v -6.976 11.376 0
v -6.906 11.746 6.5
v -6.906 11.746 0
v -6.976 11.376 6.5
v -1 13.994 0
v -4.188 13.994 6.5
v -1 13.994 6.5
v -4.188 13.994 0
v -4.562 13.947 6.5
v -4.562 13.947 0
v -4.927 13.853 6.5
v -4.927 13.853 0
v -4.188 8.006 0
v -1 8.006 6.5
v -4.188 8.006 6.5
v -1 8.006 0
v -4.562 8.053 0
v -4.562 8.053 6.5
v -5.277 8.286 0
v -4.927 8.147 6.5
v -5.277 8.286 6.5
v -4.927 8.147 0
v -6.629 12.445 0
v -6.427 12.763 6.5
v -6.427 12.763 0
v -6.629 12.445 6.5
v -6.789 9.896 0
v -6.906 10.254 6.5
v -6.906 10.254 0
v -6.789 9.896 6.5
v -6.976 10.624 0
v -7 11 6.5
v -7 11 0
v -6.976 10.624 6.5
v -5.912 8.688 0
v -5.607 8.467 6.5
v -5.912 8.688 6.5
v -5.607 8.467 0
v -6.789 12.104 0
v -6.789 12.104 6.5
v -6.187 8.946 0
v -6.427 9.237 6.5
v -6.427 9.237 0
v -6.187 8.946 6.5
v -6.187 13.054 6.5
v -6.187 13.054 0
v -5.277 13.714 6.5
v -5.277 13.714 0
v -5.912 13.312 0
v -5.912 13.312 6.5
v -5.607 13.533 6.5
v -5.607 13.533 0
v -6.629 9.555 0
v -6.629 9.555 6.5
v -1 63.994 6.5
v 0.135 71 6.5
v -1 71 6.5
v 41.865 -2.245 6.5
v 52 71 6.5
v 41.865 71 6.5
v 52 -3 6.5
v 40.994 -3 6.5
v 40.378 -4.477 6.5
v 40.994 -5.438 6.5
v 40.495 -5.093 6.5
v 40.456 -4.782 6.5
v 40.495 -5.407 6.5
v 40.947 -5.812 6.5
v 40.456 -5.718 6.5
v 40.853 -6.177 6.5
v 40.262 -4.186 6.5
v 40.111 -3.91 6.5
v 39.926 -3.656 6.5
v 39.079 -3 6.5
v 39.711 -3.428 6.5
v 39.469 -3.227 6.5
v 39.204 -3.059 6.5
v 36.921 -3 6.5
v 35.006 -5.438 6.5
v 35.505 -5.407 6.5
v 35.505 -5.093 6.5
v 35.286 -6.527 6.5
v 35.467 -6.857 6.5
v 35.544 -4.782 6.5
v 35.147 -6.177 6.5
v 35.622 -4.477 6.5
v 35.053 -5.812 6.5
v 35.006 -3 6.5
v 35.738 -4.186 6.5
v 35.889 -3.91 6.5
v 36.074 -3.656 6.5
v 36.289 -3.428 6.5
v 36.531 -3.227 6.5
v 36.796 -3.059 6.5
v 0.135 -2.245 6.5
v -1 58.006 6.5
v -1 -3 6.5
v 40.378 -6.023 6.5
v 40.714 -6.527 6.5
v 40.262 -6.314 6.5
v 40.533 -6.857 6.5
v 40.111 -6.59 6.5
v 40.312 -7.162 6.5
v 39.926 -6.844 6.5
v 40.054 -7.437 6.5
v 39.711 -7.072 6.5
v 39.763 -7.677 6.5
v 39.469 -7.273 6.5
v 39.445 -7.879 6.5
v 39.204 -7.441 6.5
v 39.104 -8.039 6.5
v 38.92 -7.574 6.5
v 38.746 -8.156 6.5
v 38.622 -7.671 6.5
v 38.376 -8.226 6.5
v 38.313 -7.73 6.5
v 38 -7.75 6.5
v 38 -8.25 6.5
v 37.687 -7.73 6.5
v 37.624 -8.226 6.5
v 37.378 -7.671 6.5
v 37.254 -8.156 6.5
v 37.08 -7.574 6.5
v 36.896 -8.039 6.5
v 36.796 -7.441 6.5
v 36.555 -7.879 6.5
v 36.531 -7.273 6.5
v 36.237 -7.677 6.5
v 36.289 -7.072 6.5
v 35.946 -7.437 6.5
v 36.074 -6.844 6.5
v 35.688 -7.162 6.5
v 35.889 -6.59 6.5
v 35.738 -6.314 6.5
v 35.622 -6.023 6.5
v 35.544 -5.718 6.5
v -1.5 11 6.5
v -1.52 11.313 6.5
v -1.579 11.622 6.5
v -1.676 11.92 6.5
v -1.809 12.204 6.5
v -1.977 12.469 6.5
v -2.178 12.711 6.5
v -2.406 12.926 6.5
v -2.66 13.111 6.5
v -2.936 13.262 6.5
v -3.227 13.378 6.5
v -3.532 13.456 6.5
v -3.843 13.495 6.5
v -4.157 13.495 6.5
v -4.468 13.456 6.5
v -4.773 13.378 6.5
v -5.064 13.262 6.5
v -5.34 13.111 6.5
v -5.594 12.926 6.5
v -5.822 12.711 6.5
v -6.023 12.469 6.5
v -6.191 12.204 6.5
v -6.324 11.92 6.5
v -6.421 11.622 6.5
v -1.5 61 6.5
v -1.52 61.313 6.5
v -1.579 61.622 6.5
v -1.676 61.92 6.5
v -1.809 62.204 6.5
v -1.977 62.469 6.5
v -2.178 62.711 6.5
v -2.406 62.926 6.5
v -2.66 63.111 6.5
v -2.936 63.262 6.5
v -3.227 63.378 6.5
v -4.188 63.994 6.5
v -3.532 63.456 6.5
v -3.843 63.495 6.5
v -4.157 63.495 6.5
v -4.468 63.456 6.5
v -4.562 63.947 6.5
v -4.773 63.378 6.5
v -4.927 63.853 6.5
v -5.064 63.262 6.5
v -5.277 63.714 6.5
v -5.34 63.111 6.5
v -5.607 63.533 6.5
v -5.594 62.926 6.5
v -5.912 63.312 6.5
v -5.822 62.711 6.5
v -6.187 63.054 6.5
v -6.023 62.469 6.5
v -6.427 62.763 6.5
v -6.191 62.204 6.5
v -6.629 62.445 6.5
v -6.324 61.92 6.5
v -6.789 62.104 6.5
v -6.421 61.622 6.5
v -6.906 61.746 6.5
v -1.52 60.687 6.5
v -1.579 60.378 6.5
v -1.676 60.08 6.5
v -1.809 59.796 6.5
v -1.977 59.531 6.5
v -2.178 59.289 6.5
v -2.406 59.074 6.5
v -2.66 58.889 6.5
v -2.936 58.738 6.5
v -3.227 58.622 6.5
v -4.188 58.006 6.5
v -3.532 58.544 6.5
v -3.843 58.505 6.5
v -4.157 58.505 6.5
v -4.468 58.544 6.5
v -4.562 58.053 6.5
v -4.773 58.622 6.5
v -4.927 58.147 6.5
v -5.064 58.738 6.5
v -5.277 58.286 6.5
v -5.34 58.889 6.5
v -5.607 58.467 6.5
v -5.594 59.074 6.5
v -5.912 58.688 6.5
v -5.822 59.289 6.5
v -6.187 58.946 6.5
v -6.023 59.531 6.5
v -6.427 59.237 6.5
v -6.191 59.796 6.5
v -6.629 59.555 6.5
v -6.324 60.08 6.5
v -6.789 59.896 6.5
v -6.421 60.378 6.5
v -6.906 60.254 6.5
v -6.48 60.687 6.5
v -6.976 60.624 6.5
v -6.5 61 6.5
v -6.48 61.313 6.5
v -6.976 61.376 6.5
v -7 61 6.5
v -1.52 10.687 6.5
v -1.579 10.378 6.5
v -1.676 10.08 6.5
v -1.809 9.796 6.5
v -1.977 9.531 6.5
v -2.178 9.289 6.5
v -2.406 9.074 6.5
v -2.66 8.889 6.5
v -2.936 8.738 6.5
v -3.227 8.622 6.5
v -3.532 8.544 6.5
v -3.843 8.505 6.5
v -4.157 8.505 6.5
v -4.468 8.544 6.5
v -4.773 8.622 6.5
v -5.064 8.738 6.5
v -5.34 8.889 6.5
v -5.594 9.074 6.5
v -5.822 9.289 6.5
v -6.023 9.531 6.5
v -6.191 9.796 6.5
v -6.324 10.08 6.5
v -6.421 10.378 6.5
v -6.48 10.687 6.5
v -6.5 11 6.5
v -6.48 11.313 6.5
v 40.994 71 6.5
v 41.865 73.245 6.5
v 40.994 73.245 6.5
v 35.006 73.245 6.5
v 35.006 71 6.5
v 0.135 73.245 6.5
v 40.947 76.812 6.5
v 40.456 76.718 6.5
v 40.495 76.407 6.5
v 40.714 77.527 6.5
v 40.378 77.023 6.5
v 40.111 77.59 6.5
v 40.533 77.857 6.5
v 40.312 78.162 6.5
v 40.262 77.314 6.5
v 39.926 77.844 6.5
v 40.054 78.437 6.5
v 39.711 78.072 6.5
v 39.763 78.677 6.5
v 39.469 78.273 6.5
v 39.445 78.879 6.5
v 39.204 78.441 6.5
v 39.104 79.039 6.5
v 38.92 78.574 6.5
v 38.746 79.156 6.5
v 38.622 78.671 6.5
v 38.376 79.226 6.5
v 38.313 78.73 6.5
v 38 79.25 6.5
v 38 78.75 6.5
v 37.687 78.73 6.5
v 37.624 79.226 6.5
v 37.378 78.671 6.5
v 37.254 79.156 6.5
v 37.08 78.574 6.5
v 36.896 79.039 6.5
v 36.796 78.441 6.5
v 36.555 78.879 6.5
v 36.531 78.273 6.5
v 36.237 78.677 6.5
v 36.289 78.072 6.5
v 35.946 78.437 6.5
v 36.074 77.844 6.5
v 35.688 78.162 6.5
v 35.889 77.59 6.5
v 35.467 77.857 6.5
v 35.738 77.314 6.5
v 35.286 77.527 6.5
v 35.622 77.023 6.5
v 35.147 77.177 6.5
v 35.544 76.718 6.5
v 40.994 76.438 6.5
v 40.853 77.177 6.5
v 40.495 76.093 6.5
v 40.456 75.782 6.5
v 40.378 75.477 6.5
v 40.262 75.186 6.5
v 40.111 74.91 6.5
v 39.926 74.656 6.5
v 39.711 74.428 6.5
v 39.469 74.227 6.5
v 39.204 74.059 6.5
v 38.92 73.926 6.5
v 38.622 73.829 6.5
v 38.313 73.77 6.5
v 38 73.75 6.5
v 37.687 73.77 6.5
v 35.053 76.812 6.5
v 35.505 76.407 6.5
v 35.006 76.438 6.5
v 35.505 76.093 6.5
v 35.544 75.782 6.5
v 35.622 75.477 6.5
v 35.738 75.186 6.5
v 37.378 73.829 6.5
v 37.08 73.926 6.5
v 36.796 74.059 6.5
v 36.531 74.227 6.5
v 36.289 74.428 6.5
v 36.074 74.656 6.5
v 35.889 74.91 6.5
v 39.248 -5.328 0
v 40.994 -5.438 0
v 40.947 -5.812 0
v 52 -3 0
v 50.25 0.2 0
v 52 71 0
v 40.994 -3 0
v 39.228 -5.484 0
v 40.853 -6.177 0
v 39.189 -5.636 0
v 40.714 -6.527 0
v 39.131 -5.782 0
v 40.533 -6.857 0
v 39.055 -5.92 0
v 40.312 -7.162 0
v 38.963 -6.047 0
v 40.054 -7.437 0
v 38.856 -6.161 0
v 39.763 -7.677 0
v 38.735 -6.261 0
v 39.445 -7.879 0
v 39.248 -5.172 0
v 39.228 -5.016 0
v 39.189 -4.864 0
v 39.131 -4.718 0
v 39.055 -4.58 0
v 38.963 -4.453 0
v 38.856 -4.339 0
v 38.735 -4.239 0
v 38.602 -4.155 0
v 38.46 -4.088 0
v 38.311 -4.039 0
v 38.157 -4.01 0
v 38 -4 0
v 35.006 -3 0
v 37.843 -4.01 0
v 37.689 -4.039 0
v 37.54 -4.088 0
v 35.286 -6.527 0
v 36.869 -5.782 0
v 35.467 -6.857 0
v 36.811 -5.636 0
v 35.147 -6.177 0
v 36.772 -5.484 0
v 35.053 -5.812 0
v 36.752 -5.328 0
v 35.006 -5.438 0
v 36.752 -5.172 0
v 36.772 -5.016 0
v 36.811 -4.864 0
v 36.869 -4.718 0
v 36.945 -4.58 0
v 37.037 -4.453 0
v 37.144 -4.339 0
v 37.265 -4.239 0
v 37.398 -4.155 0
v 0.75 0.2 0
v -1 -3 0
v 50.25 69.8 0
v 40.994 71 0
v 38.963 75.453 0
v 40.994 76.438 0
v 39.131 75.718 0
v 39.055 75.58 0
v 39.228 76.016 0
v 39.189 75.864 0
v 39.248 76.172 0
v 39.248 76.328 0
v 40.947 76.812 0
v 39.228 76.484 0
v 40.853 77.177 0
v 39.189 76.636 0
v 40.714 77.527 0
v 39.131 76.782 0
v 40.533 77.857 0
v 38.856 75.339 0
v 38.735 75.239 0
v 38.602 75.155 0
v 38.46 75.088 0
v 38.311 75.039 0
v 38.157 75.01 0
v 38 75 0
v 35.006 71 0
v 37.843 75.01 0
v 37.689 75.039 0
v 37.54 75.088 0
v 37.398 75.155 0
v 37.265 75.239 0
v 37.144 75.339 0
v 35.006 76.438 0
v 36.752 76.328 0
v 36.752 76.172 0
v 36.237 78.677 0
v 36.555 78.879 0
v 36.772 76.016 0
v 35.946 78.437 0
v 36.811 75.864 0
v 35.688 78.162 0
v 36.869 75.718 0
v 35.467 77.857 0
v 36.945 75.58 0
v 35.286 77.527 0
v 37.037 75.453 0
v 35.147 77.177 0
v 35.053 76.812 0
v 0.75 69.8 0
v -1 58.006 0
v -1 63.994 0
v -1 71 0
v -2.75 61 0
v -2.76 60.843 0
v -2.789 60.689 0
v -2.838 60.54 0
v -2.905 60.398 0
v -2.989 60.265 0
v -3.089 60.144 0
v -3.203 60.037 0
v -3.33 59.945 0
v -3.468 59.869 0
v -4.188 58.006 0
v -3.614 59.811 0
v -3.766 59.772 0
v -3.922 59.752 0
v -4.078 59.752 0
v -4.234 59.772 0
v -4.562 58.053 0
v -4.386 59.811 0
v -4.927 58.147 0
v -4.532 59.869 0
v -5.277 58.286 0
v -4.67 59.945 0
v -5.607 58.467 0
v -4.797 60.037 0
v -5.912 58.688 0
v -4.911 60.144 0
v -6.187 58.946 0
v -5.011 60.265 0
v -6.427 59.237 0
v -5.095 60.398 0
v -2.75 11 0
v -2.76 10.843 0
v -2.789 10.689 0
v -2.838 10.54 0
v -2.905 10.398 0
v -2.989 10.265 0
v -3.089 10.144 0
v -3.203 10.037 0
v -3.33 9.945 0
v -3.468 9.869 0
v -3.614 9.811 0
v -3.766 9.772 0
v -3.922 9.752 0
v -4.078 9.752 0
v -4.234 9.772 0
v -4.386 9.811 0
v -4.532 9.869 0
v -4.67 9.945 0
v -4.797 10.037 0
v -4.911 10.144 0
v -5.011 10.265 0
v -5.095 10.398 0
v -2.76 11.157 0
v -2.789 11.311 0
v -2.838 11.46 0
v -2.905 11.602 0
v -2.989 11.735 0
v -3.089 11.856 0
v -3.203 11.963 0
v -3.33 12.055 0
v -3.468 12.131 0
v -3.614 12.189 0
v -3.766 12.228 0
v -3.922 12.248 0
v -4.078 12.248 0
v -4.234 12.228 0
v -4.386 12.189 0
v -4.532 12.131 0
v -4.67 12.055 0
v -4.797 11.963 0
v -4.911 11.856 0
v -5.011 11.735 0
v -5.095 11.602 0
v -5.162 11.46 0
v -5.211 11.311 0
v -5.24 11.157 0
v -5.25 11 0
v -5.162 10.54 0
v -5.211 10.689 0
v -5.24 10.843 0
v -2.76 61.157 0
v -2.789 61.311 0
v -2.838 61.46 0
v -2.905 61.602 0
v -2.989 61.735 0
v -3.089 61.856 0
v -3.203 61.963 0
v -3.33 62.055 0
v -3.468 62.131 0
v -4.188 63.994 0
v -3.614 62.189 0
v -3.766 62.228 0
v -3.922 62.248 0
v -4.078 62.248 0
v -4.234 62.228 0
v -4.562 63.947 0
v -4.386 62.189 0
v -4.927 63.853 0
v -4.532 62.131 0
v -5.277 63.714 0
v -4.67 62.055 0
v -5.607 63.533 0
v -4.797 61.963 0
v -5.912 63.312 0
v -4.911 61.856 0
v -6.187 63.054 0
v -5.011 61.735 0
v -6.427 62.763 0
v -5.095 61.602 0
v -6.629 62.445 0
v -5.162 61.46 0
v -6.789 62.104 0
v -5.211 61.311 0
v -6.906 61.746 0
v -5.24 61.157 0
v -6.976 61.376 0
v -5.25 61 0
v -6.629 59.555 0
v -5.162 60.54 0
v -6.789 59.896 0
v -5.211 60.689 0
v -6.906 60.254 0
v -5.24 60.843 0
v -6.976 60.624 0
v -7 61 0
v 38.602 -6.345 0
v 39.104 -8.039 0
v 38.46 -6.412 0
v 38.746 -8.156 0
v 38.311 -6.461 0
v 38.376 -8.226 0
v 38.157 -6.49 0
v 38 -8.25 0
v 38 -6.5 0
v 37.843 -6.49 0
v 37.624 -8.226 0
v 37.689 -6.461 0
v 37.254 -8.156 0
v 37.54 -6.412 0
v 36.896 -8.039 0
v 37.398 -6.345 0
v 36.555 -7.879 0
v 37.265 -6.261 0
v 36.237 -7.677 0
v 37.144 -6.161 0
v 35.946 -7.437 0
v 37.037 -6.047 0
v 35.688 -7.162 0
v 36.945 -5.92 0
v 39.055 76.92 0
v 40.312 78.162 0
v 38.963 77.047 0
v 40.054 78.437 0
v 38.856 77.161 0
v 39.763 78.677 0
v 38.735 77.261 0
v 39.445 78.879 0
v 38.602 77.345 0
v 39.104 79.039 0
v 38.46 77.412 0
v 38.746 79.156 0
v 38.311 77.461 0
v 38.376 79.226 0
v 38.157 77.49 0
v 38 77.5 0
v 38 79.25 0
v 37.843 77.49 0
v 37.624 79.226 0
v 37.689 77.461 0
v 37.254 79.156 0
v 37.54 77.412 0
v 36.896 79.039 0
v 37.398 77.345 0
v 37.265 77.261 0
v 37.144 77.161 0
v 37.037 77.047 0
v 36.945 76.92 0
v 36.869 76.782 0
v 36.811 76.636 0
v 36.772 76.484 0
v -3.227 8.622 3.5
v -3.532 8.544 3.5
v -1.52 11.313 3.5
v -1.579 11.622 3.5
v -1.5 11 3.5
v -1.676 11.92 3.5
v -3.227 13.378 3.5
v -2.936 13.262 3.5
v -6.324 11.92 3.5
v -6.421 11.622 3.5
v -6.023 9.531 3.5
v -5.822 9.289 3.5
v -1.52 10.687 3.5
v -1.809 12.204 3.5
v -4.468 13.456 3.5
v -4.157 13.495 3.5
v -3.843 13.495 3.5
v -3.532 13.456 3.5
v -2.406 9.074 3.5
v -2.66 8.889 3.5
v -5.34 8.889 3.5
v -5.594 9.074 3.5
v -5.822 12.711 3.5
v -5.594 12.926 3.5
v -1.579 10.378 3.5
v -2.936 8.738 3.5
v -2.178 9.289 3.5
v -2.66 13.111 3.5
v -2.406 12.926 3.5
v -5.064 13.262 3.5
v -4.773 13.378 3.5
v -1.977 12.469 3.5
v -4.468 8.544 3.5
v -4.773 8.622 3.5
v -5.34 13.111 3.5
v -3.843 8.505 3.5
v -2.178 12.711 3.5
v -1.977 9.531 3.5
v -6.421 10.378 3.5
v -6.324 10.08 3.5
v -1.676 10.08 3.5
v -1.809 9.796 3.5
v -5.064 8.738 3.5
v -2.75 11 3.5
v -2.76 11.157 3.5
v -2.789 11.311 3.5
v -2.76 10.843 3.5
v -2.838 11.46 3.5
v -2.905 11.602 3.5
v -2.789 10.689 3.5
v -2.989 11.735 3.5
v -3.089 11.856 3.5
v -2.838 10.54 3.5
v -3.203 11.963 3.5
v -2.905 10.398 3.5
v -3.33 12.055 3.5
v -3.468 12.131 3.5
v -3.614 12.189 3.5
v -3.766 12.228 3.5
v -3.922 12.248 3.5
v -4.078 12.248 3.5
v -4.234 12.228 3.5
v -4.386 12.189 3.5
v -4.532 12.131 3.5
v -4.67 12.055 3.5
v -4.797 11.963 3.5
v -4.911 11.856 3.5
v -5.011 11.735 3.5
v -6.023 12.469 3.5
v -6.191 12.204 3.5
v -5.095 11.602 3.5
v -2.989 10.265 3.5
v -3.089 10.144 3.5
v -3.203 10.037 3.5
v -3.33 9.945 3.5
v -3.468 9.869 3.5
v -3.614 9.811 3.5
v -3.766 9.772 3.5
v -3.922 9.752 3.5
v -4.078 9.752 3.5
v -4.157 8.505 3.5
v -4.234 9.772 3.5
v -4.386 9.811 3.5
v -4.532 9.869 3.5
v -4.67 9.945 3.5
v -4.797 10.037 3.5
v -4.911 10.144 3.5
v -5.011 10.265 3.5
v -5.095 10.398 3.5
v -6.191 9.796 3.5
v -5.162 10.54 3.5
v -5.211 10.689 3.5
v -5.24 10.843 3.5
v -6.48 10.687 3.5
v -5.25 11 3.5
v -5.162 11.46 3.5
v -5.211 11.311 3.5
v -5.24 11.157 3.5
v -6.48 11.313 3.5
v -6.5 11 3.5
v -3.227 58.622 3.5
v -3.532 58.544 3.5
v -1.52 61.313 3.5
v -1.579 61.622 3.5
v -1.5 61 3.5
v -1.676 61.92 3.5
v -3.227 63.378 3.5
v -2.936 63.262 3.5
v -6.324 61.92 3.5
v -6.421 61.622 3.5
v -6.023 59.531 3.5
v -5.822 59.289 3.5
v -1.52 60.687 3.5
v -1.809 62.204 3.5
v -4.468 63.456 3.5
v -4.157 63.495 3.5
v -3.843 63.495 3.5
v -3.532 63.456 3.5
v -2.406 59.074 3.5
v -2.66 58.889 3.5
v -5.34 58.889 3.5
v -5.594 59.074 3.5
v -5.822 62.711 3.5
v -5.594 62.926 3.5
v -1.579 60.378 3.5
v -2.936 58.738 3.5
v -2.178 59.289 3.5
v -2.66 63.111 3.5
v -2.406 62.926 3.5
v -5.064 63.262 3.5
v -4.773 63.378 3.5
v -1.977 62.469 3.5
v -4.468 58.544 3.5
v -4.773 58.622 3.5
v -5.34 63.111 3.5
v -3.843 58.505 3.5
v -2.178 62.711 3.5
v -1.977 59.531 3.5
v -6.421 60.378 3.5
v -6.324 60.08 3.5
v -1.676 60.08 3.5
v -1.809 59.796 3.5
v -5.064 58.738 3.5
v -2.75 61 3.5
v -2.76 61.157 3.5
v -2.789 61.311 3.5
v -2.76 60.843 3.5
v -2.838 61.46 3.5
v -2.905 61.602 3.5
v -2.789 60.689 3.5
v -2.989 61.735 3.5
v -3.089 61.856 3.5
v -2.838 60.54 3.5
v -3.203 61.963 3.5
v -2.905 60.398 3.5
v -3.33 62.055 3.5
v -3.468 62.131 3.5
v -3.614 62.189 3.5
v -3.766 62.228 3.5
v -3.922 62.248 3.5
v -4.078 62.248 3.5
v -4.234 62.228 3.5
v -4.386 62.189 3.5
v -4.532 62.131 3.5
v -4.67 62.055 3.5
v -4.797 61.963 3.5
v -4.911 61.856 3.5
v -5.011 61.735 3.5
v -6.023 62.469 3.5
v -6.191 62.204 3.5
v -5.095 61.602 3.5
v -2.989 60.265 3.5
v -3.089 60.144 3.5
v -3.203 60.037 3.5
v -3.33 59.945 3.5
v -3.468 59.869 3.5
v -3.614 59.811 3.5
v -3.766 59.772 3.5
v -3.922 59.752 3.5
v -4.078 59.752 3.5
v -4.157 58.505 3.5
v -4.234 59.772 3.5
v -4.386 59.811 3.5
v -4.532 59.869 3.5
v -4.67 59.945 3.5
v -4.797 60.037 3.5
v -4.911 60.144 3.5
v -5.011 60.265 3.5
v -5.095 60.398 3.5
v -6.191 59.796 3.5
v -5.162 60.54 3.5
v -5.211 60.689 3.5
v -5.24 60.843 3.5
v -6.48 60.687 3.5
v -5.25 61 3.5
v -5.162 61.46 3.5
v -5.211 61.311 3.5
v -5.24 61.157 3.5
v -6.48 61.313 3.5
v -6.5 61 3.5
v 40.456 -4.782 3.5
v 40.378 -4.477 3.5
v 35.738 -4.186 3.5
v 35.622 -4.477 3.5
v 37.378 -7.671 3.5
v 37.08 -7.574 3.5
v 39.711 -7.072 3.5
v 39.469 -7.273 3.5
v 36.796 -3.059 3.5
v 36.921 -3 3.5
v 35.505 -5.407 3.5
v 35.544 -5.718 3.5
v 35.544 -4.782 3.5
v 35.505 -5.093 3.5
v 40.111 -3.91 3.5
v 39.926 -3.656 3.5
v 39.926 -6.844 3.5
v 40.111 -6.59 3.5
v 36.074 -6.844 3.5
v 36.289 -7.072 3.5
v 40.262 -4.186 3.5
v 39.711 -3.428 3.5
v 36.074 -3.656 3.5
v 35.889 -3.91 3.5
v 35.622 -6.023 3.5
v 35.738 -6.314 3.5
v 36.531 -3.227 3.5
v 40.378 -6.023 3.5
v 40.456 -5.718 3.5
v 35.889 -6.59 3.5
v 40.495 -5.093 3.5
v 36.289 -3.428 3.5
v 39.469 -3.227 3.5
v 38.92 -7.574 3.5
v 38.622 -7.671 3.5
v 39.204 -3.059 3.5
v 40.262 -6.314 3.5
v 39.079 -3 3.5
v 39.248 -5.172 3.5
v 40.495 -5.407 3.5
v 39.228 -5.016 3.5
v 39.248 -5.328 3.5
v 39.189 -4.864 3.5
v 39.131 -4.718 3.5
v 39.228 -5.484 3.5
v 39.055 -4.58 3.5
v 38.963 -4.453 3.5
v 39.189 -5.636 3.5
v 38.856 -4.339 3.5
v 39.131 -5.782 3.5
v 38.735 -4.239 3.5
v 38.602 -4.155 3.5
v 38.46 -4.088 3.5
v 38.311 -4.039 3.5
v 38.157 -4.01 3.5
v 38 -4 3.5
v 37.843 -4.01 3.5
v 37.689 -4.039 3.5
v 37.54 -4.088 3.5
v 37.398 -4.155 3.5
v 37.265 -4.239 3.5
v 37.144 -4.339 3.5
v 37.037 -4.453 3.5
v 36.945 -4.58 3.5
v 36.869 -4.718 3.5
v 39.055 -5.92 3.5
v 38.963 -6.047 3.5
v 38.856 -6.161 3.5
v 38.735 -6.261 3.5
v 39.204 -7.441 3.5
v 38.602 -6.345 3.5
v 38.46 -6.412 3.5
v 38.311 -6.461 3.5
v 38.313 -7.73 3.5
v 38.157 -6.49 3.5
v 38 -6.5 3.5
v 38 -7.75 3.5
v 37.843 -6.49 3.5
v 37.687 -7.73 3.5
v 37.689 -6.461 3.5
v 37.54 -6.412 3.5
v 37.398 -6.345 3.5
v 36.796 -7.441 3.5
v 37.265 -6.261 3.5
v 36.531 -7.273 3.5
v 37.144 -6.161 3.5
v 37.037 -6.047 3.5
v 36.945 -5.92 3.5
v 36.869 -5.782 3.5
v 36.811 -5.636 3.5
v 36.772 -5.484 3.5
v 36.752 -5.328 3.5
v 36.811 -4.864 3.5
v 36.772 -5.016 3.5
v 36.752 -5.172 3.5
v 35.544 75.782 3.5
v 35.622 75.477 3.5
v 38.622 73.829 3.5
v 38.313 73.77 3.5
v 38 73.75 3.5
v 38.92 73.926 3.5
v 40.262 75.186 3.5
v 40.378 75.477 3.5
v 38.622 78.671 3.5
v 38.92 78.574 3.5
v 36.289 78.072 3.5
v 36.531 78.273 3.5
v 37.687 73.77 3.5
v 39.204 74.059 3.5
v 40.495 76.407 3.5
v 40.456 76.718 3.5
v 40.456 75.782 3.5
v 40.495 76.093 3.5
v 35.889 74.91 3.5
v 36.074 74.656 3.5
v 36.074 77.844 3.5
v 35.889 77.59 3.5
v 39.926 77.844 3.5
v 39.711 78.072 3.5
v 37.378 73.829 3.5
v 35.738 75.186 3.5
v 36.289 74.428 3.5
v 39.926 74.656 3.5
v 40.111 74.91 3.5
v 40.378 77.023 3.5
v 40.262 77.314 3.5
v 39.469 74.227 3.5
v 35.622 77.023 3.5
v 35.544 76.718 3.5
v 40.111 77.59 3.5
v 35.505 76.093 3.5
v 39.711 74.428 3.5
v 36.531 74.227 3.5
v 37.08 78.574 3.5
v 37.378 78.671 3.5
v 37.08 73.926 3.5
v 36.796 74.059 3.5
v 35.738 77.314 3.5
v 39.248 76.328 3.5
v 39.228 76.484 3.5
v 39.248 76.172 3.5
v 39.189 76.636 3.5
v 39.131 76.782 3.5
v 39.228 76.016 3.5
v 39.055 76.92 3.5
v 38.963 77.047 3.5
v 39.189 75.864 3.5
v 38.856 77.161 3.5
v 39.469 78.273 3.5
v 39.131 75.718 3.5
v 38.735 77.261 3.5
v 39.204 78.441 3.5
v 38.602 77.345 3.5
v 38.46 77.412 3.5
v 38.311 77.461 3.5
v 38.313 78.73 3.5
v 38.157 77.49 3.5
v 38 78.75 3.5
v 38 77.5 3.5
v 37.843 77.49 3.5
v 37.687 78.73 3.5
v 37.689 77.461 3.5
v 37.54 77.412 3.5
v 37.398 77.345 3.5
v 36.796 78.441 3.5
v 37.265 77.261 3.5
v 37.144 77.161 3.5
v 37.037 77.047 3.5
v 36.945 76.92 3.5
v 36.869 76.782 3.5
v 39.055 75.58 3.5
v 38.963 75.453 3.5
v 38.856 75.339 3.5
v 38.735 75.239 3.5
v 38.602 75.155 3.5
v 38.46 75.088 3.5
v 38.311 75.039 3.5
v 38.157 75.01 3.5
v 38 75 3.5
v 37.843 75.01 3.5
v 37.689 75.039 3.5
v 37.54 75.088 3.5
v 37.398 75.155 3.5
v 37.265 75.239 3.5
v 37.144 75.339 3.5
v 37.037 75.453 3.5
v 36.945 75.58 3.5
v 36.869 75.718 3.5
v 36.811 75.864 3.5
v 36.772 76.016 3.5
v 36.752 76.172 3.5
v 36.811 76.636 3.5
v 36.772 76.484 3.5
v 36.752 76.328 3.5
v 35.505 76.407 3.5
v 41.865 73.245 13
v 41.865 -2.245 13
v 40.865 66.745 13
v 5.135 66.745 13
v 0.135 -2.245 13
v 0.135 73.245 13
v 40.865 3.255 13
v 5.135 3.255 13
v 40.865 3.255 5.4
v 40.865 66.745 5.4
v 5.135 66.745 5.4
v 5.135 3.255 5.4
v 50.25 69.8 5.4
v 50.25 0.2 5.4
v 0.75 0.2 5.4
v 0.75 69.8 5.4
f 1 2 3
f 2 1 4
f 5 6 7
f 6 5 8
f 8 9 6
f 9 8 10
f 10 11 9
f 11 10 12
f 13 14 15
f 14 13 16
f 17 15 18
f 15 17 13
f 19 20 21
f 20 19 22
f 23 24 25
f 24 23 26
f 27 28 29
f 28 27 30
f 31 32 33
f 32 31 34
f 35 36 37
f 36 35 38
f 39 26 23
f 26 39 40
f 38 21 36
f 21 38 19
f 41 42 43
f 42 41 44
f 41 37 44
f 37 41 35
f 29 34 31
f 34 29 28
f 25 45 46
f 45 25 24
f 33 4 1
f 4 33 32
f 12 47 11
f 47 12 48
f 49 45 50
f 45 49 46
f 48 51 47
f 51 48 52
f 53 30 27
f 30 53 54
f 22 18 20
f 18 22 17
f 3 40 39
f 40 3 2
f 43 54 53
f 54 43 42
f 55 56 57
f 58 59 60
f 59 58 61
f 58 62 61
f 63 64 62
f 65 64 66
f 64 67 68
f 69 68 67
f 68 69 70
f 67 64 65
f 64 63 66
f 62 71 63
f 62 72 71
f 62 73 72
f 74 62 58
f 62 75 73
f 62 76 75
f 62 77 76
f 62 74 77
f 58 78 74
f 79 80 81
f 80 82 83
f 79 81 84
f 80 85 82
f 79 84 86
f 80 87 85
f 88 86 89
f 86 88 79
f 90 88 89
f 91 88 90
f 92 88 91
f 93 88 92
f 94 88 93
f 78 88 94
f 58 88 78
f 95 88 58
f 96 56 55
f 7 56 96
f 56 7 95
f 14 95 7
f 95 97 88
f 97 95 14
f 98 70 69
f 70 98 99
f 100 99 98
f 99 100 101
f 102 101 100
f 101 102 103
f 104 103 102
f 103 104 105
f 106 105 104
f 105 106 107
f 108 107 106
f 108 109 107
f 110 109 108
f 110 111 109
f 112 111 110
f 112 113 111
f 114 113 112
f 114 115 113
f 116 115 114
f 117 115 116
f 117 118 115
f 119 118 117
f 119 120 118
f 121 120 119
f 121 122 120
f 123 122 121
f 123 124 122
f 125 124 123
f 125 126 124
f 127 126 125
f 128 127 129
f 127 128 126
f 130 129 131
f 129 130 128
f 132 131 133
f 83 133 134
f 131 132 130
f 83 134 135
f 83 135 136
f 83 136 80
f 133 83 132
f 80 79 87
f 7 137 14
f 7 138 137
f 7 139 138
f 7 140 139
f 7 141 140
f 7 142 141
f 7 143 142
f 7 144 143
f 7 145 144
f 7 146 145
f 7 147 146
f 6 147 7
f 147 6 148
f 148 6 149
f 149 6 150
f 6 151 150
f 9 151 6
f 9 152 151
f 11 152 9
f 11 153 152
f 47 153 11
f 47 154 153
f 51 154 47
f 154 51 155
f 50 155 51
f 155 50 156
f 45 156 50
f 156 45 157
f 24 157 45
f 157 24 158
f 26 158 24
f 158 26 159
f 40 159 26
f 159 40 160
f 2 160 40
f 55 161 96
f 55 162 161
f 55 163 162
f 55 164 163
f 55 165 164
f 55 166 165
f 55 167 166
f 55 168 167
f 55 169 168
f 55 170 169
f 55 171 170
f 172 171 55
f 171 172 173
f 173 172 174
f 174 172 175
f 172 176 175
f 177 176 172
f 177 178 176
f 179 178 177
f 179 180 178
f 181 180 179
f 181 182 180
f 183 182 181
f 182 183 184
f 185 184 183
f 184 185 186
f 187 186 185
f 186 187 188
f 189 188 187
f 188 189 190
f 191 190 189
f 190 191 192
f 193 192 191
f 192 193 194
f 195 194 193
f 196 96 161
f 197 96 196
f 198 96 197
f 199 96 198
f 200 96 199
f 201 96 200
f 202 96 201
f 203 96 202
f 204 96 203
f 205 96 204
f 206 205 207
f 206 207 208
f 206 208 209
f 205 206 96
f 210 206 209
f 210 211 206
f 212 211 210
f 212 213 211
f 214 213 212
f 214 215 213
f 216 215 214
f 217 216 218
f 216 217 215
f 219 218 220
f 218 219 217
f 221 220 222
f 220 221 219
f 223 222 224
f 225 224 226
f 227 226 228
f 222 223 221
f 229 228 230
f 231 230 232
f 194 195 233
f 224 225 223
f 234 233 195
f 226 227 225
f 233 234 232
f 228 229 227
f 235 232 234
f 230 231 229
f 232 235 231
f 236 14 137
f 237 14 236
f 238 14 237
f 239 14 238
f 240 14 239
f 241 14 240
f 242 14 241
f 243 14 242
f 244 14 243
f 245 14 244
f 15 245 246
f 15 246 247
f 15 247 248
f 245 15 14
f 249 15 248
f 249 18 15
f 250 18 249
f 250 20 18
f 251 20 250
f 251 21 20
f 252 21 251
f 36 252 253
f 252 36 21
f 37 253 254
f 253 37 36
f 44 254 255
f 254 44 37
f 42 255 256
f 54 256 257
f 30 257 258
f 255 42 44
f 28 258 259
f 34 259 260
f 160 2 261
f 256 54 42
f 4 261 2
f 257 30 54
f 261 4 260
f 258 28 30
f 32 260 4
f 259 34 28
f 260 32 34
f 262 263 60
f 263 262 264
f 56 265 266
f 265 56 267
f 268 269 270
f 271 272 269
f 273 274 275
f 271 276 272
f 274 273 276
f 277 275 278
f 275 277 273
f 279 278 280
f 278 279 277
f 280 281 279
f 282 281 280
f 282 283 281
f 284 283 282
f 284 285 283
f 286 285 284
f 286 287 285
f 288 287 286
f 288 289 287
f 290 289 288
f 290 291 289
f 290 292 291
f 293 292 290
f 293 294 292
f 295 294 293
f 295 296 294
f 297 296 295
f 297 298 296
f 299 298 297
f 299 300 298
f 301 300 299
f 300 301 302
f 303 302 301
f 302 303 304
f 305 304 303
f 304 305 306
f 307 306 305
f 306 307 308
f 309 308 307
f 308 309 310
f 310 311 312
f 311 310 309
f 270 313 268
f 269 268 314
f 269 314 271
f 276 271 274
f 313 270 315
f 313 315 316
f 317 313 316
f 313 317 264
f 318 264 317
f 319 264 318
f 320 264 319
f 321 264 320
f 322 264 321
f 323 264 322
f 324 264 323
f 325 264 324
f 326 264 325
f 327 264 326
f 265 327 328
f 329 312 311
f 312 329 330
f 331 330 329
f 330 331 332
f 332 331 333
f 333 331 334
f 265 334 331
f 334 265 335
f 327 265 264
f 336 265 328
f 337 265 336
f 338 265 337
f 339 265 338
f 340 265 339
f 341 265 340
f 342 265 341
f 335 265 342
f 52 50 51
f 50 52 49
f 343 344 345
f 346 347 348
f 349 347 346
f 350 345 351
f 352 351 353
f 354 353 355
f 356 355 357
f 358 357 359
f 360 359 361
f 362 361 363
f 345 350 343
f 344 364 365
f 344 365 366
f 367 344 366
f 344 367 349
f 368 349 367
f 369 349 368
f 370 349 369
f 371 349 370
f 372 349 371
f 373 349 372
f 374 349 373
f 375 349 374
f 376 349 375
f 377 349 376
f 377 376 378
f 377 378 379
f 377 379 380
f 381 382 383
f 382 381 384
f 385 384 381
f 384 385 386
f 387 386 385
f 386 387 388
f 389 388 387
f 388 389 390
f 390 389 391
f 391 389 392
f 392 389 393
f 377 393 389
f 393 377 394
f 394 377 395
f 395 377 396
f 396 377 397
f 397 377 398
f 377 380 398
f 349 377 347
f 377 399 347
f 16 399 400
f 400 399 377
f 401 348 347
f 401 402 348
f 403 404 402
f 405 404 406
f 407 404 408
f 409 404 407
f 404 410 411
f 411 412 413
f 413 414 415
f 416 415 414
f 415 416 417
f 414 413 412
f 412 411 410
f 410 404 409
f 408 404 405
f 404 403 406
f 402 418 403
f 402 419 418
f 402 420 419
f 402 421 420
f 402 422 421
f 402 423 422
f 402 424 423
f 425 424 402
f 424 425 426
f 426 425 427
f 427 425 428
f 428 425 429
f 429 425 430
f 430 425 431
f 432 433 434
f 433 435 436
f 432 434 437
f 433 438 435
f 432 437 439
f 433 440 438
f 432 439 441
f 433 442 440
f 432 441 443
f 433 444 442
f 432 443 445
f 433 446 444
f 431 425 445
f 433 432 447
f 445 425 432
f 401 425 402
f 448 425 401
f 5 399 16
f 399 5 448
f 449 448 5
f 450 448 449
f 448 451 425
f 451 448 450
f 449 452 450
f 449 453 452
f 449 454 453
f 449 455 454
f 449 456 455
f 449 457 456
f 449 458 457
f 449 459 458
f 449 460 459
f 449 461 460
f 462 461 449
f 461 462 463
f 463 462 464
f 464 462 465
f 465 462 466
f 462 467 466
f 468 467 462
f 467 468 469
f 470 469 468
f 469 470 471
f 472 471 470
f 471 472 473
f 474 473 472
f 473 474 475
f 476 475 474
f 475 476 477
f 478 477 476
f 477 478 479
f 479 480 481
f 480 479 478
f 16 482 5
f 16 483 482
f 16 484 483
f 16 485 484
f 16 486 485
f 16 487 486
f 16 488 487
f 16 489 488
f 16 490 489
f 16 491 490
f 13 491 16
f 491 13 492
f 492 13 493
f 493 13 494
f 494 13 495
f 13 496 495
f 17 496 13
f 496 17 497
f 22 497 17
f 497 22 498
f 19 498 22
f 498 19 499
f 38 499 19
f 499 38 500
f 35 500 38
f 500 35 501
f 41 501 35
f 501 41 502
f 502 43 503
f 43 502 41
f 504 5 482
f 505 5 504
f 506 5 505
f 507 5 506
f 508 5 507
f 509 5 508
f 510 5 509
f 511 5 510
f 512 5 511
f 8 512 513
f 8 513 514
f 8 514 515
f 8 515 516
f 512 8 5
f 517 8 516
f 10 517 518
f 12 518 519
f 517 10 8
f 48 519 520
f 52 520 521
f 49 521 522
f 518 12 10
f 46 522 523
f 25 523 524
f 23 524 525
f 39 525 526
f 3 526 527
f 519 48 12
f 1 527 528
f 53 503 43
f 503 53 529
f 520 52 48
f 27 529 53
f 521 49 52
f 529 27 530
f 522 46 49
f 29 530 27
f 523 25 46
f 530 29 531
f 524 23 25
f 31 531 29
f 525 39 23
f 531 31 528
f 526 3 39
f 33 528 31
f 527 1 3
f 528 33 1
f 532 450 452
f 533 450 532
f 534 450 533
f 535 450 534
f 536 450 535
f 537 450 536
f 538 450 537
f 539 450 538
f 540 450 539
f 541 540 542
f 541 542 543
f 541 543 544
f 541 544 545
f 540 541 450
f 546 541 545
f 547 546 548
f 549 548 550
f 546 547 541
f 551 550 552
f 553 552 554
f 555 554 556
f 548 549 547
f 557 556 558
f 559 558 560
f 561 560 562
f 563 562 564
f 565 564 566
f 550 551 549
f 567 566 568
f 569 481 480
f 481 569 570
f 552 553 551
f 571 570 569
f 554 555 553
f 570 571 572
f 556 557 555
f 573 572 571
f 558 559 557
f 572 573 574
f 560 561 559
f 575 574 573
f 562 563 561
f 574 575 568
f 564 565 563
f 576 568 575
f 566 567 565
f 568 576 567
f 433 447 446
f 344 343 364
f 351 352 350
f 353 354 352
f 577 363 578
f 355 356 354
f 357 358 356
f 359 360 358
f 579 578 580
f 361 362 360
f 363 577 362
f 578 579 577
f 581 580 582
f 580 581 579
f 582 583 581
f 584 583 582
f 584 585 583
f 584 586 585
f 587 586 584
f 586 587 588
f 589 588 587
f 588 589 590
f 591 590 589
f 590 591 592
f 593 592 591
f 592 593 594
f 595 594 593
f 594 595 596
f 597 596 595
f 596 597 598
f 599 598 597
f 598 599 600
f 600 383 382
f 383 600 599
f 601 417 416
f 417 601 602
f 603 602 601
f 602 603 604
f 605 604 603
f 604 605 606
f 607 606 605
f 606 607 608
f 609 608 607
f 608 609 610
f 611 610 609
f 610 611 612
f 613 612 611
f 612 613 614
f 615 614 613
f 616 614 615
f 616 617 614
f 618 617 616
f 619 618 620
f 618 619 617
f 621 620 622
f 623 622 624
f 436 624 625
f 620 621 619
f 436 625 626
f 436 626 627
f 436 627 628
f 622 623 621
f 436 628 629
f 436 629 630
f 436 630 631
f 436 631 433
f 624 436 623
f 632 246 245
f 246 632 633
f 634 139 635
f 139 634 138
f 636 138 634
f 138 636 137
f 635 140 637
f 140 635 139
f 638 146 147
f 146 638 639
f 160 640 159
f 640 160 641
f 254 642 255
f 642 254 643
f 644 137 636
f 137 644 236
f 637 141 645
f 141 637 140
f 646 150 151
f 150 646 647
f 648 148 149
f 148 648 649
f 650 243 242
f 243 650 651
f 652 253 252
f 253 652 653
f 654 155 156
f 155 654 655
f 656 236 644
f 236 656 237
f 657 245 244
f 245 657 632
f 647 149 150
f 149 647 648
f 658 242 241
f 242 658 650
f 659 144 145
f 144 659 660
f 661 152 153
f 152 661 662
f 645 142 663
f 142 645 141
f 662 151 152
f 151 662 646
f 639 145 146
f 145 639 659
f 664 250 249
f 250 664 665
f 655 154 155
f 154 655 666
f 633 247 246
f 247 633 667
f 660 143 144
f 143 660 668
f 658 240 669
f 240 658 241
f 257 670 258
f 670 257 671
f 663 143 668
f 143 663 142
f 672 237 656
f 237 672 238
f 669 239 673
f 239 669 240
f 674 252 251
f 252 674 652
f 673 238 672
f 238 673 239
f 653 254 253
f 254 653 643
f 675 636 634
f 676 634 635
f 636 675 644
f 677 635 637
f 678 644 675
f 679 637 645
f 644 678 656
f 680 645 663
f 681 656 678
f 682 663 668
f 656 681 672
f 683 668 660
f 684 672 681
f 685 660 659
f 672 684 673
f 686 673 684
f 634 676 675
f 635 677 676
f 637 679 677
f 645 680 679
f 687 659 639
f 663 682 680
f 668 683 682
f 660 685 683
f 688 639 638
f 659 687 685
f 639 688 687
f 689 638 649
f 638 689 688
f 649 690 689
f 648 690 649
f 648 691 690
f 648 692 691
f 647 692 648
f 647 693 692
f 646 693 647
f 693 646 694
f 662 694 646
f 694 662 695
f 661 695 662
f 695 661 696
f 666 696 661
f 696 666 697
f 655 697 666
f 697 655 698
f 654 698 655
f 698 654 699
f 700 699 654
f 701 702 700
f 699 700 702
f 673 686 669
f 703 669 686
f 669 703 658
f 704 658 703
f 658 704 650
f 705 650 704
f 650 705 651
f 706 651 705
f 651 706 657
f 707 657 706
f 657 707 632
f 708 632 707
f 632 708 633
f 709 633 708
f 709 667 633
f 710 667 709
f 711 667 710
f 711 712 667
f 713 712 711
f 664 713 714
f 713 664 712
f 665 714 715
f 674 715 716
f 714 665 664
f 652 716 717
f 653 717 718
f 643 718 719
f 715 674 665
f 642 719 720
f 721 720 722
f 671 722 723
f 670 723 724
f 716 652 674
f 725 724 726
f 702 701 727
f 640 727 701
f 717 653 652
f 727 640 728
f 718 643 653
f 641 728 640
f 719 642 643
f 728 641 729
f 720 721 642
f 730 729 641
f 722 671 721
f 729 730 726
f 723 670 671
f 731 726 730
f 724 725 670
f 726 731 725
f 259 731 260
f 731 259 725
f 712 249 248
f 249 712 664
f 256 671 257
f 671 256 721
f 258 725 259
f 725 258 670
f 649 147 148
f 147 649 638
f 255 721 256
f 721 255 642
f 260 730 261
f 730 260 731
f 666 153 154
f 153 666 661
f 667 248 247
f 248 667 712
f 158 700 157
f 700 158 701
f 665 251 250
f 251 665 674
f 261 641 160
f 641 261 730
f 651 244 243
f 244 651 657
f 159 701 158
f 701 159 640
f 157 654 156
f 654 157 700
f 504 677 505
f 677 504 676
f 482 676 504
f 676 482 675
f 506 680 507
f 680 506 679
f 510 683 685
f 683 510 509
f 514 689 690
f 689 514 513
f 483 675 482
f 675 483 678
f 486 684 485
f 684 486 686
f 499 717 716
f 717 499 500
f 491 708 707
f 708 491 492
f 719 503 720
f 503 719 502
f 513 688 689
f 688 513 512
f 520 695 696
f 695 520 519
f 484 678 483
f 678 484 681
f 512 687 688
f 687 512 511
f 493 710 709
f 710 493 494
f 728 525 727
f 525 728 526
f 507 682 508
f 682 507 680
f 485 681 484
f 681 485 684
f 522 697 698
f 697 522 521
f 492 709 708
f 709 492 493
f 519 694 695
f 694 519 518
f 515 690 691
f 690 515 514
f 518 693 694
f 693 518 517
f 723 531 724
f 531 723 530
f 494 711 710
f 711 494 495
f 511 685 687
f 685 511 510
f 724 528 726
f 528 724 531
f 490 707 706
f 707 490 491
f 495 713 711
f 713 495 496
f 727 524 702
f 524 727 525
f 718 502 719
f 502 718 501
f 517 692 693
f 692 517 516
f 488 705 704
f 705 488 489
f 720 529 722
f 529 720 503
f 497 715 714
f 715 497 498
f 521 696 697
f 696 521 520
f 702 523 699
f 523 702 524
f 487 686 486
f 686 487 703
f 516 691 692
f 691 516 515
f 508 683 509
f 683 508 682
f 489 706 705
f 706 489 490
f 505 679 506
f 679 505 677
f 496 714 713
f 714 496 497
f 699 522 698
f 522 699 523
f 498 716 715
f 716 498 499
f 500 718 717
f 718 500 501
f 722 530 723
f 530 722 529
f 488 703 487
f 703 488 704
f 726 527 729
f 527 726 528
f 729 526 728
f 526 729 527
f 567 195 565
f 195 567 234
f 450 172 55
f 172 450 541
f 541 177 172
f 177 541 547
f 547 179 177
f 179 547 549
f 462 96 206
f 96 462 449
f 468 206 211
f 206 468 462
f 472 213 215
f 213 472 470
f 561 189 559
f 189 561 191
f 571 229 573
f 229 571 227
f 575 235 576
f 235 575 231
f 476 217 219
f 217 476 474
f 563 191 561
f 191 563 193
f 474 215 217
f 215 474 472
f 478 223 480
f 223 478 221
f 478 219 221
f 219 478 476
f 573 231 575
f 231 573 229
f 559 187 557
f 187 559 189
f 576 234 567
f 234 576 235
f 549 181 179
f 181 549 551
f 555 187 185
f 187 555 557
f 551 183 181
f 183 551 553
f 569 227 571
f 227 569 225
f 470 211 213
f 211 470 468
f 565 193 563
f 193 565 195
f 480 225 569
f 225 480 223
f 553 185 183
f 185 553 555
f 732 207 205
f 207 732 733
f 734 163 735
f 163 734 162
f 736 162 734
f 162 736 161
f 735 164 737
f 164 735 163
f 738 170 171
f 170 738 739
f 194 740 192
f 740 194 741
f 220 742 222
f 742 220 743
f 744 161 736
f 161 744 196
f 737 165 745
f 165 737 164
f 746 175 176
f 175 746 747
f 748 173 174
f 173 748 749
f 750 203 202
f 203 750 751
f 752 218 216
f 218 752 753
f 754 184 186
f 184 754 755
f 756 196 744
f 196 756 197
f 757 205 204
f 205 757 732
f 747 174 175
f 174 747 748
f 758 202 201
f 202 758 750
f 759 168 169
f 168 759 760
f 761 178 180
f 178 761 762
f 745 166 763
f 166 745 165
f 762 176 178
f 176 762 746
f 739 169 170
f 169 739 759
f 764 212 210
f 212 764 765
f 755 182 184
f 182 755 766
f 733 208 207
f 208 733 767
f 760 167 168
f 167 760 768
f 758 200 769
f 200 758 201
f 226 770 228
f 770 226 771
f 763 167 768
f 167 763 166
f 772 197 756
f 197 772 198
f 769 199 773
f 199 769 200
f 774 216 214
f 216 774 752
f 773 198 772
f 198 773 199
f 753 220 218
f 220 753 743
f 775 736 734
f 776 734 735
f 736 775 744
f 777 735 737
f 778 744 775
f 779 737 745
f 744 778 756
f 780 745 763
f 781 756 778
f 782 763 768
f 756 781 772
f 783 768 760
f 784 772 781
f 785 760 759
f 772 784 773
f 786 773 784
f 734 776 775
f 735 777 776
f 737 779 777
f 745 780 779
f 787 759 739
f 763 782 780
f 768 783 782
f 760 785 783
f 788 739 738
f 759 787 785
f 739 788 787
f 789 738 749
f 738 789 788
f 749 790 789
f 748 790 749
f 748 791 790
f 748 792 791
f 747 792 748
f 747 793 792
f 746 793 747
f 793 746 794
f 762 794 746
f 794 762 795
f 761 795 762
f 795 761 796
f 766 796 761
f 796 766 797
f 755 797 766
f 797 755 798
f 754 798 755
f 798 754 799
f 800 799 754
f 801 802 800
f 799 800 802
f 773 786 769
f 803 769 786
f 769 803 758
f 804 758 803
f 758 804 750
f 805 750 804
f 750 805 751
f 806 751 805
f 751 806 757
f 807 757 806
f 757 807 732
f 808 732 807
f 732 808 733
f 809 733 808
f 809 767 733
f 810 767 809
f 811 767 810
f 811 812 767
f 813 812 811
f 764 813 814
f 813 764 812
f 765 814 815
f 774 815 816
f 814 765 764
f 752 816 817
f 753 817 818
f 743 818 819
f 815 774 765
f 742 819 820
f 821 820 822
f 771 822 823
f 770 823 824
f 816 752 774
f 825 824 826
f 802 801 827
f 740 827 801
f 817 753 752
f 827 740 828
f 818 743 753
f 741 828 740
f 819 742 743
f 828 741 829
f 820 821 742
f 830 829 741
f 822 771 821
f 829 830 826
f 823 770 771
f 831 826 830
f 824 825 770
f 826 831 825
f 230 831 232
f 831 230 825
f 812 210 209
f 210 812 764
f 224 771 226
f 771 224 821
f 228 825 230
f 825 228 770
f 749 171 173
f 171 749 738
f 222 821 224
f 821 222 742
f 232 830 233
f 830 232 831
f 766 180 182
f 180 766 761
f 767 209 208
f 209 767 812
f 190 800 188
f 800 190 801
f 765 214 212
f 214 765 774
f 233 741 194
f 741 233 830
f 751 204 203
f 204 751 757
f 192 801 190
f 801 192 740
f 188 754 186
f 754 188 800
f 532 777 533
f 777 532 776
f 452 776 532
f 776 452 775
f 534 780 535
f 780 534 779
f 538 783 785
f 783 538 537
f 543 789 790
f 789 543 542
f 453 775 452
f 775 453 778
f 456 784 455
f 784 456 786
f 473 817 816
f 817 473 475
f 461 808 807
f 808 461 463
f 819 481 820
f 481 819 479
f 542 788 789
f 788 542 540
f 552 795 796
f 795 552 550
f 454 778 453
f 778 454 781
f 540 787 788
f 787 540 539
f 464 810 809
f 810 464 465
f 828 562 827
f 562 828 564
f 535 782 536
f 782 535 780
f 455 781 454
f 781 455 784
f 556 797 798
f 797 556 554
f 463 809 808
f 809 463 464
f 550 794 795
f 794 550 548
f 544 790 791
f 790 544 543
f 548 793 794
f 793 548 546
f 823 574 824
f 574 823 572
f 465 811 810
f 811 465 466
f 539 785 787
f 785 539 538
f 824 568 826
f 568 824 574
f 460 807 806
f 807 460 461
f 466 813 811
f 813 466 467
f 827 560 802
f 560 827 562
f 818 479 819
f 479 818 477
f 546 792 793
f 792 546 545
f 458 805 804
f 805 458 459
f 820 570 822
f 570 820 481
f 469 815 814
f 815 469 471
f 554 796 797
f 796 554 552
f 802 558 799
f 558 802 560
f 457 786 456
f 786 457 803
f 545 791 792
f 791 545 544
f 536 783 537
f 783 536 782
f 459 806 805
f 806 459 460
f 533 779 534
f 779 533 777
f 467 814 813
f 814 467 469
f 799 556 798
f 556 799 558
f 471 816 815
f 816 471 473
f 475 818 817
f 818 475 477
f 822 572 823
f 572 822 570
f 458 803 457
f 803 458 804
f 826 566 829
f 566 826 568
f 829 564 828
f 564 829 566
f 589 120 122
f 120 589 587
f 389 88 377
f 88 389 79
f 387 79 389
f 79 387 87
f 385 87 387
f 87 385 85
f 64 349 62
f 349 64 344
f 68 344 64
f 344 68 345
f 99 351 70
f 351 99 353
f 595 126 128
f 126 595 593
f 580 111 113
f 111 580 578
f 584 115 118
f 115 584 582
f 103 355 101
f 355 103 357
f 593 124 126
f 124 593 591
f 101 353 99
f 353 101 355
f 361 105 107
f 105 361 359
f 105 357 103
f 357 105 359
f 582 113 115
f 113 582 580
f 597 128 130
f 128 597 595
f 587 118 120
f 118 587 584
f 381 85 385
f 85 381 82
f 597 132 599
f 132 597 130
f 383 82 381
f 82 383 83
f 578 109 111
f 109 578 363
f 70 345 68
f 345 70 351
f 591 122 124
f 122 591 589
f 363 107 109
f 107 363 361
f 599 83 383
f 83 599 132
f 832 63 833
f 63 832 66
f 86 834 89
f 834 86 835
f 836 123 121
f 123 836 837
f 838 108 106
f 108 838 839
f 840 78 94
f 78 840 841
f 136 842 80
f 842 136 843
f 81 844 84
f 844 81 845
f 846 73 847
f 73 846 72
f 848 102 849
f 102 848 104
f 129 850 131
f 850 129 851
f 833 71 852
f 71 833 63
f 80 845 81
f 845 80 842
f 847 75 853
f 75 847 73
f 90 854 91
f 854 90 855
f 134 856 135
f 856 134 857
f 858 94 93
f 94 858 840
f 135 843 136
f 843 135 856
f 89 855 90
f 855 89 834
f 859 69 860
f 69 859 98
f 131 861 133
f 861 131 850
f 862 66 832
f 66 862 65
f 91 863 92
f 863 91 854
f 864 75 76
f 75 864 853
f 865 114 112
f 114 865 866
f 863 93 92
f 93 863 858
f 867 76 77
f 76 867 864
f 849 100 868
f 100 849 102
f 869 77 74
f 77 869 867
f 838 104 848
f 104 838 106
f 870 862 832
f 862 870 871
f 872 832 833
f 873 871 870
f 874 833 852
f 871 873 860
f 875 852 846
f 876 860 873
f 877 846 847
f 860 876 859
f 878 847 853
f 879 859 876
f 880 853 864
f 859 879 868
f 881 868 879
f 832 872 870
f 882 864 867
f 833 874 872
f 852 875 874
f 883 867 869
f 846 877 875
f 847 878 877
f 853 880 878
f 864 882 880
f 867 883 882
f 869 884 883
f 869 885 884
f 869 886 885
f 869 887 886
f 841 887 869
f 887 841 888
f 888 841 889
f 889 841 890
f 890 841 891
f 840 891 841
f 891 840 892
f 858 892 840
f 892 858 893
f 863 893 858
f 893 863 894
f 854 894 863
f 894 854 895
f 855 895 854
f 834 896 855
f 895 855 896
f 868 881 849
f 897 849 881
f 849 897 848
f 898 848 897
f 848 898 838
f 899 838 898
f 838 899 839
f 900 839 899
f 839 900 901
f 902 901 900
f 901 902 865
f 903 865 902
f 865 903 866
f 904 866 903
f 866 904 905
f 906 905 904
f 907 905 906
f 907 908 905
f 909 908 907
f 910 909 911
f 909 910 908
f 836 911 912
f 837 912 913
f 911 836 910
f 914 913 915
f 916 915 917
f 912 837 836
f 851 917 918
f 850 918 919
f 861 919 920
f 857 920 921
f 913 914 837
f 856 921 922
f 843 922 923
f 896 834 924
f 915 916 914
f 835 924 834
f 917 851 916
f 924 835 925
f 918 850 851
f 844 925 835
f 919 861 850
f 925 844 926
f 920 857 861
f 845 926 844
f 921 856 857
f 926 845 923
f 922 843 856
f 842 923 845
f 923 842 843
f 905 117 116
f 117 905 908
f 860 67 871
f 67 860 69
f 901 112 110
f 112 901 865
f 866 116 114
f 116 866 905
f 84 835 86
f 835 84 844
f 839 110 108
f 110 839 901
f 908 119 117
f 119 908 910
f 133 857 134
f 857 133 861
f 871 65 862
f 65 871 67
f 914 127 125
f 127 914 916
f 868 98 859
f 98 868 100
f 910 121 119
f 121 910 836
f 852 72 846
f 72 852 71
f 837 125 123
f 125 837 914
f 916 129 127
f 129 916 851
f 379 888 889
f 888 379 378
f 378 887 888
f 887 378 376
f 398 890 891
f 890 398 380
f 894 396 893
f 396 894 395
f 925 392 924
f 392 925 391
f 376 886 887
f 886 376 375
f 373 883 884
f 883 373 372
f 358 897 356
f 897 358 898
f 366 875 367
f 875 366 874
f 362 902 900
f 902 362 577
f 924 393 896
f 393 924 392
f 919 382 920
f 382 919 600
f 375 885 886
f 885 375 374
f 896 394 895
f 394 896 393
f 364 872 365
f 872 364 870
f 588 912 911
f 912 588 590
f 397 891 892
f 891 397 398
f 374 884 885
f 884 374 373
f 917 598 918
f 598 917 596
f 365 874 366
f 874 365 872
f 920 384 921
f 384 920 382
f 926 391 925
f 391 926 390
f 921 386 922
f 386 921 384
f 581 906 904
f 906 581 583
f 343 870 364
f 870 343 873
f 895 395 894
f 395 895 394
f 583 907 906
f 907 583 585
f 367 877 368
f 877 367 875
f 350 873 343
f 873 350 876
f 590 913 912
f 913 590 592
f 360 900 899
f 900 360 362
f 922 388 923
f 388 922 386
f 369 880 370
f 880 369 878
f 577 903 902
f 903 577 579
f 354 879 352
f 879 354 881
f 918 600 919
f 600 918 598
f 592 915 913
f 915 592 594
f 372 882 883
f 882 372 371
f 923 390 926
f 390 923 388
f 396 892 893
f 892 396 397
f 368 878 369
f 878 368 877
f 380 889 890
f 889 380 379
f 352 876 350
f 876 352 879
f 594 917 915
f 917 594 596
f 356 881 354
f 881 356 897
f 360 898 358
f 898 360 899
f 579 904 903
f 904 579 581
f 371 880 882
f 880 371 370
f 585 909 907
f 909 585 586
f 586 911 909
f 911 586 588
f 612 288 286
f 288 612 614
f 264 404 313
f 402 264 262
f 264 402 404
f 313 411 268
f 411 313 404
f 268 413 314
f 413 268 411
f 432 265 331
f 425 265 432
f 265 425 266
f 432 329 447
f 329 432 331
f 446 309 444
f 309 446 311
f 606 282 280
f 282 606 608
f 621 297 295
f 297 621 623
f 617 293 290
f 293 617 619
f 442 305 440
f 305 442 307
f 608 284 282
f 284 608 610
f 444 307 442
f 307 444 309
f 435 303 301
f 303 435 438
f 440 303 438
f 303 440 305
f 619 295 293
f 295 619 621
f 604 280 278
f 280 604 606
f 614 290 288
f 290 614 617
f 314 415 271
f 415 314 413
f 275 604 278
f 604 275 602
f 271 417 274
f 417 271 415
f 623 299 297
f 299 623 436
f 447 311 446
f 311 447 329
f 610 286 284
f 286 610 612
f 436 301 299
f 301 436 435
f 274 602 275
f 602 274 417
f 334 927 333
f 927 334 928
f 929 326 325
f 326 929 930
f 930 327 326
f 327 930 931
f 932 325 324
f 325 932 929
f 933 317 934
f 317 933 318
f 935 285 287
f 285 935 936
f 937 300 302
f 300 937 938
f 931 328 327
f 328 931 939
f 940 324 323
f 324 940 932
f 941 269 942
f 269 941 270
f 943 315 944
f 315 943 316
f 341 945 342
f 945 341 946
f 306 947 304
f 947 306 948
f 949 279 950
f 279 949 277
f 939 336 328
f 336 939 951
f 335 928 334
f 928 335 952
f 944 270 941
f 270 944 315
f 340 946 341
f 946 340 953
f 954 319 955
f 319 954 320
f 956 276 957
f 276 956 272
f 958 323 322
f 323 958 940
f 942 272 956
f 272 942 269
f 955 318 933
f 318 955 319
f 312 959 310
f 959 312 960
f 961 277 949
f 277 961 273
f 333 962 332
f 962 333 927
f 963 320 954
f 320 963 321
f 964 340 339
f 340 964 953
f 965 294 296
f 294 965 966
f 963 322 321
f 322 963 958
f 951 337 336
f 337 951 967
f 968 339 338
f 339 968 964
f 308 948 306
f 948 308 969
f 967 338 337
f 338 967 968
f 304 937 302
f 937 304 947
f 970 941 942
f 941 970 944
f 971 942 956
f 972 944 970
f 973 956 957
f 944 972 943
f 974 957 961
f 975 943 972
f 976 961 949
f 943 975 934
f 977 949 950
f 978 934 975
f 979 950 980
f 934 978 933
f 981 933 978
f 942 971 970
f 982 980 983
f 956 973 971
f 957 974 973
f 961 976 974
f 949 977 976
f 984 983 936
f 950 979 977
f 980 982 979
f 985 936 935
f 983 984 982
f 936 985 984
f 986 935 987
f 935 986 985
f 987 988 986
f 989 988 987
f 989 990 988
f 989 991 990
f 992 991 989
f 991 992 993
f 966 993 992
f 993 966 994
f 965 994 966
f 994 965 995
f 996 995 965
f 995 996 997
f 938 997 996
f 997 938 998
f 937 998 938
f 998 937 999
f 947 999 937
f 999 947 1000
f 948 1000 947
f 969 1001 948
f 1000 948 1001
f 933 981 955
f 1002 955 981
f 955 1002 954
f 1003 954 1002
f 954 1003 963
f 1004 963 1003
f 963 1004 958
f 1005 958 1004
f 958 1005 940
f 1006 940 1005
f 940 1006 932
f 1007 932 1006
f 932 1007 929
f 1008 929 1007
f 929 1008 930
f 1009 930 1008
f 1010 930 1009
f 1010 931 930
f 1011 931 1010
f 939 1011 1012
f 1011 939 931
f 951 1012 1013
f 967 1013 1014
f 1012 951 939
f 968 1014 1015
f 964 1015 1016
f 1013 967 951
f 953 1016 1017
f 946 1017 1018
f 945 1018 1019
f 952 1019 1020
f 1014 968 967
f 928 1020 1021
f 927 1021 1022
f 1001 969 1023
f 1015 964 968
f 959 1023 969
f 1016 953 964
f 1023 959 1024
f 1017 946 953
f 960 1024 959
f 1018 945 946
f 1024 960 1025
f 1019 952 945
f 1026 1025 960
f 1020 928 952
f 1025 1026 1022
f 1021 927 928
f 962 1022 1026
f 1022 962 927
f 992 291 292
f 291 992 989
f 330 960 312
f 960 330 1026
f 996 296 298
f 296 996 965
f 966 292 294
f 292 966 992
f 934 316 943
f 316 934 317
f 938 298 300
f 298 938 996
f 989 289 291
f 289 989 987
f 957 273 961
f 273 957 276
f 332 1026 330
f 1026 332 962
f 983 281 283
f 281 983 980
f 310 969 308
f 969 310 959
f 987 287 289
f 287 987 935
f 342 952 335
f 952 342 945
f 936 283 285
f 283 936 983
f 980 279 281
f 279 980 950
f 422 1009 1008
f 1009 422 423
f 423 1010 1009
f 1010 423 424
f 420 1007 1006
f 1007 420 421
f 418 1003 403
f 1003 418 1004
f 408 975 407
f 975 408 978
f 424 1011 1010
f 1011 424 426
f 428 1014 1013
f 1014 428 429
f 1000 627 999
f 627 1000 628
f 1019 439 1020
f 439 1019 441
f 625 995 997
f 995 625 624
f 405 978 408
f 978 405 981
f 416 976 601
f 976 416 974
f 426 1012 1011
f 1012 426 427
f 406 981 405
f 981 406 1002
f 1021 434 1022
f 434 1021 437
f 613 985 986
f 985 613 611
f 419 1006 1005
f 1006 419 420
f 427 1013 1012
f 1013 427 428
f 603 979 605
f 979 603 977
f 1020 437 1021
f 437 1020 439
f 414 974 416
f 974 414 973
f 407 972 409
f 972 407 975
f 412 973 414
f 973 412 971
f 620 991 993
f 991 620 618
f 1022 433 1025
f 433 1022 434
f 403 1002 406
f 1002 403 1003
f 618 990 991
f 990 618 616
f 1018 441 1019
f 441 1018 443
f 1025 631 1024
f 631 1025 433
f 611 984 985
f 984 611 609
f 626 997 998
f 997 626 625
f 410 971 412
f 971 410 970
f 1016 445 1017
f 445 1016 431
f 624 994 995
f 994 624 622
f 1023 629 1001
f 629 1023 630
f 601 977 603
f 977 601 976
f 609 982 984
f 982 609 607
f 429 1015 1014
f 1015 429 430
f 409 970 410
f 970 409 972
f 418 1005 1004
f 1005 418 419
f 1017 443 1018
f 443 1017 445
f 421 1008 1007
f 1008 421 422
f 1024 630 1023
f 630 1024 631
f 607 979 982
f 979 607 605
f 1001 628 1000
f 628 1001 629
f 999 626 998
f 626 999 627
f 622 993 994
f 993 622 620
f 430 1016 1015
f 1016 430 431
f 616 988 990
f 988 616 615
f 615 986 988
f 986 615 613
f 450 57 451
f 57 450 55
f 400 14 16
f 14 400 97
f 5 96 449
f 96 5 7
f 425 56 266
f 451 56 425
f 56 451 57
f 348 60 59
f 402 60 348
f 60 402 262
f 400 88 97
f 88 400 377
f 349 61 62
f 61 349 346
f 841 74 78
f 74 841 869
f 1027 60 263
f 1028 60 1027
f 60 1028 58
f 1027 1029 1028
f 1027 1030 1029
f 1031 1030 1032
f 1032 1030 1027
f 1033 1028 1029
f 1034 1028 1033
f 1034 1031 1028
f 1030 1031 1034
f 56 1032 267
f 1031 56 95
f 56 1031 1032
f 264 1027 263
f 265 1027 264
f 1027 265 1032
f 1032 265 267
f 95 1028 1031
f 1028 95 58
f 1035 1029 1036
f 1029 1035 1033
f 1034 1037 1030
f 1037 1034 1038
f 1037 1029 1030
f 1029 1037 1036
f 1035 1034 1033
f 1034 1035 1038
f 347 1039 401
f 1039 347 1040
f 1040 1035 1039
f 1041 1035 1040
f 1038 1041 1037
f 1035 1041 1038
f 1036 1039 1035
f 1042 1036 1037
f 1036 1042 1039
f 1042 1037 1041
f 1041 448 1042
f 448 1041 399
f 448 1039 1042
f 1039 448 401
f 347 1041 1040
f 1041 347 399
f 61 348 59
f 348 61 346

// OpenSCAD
$fn=50;
outer_x = 60;
outer_y = 72;

aperture_x = 49.5;
aperture_y = 69.6;

height = 4;


viewport_x = 29.73+2;
viewport_y =59.49;
screen_clearance = 4;

rim_thickness = 6;

module mounting_lug(ht) {
    difference() {
       hull() {
        cylinder(d=6,h=ht);
        translate([6,0,0]) cylinder(d=6,h=ht);
       }
       translate([0,0,3.5]) cylinder(d=5,h=10);
       translate([0,0,-1]) cylinder(d=2.5,h=10);
   }
}

module main_bracket() {
difference() {
union() {
    translate([-1,-3,0]) cube([outer_x,outer_y+2,height+2.5]);




//50mm apart

//outer y= 72. So, 11 in.
translate([-4,(outer_y - 50)/2,0]) {
    mounting_lug(height+2.5);
    translate([0,50,0]) mounting_lug(height+2.5);
}


//holes are 80mm apart.

translate([0,-5.25,0]) {
    translate([38,0,0]) rotate(90) mounting_lug(height+2.5);
    translate([38,81.5,0]) rotate(270) mounting_lug(height+2.5);
}

//the raised lip
 translate([(0 + outer_x - (viewport_x+ screen_clearance)) /2 - 12, -1 + (outer_y - (viewport_y + screen_clearance))/2-5.5,height+2.5]) cube([viewport_x + screen_clearance + rim_thickness, viewport_y + screen_clearance + rim_thickness + 6, height+2.5]);


}






//the screen viewing window

 translate([(0 + outer_x - (viewport_x+ screen_clearance)) /2 - 7, -1 + (outer_y - (viewport_y + screen_clearance))/2,]) cube([viewport_x + screen_clearance, viewport_y + screen_clearance, 50]);


//the aperture
    translate([(outer_x - aperture_x) /2 -4.5 ,-1  +(outer_y - aperture_y) /2 ,-0.1]) cube([aperture_x, aperture_y, height + 2.5 -1]);
    
    

//chops the bottom off.
translate([52,-5,-0.1]) cube([100,100,100]);

//for the f4...
//translate([42,-3,0]) #cube([12,10,10]);
//translate([42,65,0]) #cube([12,10,10]);



}
}


main_bracket();
